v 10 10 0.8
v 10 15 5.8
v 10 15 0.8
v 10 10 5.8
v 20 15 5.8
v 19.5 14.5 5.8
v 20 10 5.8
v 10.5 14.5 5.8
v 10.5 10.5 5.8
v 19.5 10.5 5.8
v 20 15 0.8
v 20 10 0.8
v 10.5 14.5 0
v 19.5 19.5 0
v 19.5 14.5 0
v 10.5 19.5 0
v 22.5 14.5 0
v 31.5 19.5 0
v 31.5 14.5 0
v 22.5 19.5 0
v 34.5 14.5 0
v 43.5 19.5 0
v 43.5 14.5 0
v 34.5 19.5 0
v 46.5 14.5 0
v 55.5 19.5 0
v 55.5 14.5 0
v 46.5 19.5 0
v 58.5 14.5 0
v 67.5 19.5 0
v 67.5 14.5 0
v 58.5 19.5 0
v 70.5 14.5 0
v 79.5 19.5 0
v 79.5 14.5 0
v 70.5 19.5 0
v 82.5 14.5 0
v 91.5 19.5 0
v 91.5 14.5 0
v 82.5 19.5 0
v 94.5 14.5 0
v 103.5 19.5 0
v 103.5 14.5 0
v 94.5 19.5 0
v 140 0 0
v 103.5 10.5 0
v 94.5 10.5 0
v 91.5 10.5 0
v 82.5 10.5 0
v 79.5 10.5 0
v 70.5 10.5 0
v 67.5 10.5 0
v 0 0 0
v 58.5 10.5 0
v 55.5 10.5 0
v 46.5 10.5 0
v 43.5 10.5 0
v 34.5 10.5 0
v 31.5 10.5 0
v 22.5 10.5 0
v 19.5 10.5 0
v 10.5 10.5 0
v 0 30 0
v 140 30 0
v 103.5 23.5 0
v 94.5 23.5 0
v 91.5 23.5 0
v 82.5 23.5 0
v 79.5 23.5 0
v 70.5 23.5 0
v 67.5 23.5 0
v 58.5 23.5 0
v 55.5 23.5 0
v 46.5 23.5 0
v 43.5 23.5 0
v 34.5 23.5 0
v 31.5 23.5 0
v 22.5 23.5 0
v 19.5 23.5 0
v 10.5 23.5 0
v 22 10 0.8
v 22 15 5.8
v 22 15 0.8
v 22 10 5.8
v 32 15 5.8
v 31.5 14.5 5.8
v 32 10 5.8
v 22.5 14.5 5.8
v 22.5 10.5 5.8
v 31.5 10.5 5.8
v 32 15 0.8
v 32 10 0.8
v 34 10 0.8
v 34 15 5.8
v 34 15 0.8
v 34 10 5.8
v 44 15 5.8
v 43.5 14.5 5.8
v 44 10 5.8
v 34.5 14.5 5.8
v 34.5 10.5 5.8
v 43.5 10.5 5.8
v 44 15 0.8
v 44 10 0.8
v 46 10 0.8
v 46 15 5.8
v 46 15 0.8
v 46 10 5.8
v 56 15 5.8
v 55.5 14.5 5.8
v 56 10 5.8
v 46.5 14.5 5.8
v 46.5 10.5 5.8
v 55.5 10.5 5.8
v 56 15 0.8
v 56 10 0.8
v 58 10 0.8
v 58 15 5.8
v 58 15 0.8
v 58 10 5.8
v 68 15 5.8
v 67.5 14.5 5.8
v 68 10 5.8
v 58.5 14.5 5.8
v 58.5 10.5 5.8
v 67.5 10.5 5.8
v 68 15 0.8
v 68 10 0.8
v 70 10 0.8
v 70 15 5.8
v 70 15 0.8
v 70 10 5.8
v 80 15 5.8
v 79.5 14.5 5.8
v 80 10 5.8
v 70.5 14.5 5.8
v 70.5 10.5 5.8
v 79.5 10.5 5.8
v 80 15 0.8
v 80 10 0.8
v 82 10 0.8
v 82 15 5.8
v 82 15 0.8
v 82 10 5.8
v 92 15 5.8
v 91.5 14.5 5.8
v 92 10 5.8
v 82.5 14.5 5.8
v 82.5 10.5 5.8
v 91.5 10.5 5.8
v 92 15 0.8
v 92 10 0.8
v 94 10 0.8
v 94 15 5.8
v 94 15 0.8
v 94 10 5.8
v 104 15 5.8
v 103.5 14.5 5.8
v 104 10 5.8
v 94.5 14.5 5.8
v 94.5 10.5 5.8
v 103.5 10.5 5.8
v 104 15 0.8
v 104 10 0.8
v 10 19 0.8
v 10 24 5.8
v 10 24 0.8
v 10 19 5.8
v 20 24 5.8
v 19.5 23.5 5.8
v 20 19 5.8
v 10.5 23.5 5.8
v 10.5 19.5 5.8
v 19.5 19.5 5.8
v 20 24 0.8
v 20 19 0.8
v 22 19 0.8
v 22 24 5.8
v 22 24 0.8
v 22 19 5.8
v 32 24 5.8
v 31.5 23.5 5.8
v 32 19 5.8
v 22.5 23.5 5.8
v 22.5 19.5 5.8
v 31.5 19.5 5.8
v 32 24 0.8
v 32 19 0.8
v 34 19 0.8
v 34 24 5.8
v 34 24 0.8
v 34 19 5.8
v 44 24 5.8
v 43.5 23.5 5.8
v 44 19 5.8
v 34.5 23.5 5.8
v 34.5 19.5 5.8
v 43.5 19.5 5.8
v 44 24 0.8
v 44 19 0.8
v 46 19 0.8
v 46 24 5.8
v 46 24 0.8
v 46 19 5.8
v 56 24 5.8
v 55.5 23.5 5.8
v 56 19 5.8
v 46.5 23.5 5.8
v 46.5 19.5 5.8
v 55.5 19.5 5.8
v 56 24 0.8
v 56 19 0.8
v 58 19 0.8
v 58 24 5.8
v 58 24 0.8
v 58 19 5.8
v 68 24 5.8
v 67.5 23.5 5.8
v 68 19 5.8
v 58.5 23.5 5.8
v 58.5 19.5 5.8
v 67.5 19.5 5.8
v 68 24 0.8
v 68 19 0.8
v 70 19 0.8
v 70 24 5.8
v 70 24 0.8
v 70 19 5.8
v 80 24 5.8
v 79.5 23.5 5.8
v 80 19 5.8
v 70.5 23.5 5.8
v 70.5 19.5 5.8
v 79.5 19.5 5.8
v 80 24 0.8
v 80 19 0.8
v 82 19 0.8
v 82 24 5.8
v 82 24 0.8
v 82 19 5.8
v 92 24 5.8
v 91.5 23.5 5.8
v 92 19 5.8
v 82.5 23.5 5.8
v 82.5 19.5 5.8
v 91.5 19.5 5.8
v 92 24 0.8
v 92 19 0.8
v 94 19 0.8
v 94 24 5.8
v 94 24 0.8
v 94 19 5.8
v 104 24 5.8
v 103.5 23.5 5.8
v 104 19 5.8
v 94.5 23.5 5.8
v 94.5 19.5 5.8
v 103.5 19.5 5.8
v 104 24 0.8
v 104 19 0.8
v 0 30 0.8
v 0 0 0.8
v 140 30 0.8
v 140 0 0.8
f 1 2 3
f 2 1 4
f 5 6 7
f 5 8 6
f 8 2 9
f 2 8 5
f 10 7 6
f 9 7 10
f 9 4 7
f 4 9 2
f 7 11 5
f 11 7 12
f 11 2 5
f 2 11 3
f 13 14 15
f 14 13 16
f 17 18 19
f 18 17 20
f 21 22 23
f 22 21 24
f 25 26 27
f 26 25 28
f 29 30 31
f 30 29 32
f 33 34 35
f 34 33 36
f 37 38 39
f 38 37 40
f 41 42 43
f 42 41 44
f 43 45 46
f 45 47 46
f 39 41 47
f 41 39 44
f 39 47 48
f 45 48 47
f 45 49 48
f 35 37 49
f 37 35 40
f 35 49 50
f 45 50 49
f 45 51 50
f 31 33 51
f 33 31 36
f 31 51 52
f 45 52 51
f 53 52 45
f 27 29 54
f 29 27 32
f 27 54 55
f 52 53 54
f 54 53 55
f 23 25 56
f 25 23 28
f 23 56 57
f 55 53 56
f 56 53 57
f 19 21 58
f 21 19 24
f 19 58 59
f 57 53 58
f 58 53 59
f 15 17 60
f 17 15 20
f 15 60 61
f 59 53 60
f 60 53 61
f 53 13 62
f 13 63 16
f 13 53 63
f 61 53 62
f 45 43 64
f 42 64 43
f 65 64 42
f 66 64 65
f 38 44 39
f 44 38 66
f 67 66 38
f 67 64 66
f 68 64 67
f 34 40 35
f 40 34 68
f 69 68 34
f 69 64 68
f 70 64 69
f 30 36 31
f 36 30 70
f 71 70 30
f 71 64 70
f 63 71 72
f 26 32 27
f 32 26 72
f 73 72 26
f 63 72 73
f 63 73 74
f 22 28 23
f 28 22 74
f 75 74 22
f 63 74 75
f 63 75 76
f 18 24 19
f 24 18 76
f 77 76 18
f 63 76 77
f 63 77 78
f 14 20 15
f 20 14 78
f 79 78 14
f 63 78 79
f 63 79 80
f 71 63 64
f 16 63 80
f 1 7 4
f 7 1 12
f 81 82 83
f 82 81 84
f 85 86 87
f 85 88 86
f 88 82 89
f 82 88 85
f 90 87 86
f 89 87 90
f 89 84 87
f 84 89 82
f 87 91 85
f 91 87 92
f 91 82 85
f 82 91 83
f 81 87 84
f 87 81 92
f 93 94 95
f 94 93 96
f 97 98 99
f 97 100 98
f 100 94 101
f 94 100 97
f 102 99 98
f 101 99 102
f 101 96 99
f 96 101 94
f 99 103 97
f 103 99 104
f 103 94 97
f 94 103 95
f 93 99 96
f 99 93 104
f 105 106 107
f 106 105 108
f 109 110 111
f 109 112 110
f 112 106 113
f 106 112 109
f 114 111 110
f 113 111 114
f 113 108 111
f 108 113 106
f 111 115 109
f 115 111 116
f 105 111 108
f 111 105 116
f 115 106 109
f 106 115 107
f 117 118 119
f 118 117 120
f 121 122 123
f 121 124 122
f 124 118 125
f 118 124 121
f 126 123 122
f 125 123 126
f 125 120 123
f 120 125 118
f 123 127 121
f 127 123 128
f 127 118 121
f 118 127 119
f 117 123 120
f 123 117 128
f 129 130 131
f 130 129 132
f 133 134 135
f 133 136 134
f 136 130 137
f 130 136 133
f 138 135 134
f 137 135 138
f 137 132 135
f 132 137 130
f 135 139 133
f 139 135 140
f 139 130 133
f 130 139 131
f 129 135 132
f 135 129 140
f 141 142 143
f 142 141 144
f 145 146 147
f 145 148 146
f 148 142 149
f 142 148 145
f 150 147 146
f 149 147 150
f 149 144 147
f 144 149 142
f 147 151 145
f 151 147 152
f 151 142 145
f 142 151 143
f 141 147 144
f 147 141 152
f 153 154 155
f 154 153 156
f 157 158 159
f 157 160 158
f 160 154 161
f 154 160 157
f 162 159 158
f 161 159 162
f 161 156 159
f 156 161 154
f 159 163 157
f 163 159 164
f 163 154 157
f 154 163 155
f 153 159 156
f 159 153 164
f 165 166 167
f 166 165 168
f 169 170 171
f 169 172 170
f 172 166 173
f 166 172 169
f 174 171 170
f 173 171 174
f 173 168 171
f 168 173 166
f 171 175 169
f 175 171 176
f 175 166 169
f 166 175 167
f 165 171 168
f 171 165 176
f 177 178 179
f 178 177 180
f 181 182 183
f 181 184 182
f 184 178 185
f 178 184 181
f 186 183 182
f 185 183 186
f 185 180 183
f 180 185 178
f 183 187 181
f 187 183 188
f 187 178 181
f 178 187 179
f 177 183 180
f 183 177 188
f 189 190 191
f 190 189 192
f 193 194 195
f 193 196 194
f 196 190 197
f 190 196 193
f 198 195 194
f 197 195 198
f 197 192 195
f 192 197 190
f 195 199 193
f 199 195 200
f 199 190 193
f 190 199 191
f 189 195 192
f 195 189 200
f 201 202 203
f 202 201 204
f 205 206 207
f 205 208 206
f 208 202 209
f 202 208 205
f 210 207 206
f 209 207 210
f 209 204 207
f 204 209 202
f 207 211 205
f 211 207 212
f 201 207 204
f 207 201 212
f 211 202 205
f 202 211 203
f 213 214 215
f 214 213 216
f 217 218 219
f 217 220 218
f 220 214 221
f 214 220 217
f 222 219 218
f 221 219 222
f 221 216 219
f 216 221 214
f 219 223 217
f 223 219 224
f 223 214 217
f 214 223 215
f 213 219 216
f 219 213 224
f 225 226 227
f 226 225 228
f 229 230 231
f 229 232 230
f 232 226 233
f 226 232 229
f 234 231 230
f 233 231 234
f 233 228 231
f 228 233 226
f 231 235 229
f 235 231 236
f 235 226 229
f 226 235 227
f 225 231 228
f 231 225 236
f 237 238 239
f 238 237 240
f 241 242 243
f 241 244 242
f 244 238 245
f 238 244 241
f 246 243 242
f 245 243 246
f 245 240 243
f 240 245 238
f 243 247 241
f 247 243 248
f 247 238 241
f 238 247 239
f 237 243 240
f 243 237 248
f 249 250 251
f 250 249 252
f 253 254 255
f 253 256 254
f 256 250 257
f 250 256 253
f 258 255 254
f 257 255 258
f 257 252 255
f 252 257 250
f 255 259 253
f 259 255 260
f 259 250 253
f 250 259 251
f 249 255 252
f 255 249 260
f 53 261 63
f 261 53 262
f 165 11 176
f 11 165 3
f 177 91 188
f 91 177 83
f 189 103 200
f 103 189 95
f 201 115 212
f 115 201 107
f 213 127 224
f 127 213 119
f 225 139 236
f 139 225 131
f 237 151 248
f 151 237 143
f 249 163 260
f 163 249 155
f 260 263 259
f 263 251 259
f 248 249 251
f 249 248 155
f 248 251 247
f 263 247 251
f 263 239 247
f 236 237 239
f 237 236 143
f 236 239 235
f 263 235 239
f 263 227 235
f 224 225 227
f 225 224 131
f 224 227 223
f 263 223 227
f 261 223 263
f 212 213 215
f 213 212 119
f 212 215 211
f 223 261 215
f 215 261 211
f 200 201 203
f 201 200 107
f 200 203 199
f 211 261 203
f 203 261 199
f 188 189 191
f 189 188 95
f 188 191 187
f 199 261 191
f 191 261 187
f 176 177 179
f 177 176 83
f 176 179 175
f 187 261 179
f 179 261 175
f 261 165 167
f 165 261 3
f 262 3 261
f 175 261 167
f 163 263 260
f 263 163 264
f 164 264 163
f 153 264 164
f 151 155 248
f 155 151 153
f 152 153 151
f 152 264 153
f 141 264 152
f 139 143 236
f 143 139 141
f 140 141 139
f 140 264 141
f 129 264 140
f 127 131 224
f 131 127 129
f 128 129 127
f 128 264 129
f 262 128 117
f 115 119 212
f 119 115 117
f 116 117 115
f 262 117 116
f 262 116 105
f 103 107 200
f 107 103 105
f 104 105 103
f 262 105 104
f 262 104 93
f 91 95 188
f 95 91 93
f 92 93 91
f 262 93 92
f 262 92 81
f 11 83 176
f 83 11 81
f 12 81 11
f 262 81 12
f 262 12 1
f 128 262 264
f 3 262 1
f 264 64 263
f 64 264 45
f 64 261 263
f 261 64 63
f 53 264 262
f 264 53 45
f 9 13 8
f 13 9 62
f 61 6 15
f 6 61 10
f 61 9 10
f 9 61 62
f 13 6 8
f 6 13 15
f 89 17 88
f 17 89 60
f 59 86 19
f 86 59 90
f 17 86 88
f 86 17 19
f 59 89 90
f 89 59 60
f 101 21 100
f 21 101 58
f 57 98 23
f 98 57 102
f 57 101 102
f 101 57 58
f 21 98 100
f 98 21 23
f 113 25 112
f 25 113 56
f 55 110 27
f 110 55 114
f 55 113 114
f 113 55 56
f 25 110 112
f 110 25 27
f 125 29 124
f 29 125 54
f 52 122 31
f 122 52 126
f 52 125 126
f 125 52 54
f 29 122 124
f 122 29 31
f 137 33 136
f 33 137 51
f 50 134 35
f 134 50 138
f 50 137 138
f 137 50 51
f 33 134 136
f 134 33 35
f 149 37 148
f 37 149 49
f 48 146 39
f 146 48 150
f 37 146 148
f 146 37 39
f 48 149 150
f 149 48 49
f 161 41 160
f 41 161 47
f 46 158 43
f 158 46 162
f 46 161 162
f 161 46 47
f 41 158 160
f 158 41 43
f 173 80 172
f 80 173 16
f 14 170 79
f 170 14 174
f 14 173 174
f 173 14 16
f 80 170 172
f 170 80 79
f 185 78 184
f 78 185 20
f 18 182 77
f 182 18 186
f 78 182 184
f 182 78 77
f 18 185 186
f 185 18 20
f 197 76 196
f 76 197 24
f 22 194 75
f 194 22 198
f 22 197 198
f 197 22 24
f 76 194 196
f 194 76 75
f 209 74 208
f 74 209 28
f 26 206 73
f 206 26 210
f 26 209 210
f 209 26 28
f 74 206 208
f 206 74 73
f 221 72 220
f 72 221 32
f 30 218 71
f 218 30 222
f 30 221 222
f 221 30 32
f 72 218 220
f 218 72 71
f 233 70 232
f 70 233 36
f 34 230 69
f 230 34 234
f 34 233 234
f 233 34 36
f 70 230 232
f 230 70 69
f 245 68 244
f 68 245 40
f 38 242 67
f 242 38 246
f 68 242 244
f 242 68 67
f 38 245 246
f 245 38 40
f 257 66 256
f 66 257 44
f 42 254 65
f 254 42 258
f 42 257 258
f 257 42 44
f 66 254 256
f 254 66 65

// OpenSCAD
fab_x=35*4;
fab_y=30*1.;
fab_z=0.8;

block_x=10;
block_y=5;
block_z=5+fab_z;

slot_t=0.5;

space_x=2;
space_y=4;

matrix=8;

generate();

module generate(){
    
    difference(){
        
        union(){
            fabric();
            translate([10,10,0])block(matrix-1);
            translate([10,10+block_y+space_y,0])block(matrix-1);
            translate([10,10+block_y+space_y,0])block(matrix-1);
        }
        translate([10,10,0])slot(matrix-1);
        translate([10,10+block_y+space_y,0])slot(matrix-1);
    }
}  

module fabric(){
    cube([fab_x,fab_y,fab_z]);
}

module block(matrix){
  
    for (i=[0:matrix]){
                translate([(block_x+space_x)*i,0,0])
                cube([block_x,block_y,block_z]);
              
    }
    
    
}

module slot(matrix){
    translate([slot_t,slot_t,0]){
        for (i=[0:matrix]){
                    translate([(block_x+space_x)*i,0,0])
                    cube([block_x-2*slot_t,block_y-2*slot_t,block_z]);
                  
        }
    }
}
